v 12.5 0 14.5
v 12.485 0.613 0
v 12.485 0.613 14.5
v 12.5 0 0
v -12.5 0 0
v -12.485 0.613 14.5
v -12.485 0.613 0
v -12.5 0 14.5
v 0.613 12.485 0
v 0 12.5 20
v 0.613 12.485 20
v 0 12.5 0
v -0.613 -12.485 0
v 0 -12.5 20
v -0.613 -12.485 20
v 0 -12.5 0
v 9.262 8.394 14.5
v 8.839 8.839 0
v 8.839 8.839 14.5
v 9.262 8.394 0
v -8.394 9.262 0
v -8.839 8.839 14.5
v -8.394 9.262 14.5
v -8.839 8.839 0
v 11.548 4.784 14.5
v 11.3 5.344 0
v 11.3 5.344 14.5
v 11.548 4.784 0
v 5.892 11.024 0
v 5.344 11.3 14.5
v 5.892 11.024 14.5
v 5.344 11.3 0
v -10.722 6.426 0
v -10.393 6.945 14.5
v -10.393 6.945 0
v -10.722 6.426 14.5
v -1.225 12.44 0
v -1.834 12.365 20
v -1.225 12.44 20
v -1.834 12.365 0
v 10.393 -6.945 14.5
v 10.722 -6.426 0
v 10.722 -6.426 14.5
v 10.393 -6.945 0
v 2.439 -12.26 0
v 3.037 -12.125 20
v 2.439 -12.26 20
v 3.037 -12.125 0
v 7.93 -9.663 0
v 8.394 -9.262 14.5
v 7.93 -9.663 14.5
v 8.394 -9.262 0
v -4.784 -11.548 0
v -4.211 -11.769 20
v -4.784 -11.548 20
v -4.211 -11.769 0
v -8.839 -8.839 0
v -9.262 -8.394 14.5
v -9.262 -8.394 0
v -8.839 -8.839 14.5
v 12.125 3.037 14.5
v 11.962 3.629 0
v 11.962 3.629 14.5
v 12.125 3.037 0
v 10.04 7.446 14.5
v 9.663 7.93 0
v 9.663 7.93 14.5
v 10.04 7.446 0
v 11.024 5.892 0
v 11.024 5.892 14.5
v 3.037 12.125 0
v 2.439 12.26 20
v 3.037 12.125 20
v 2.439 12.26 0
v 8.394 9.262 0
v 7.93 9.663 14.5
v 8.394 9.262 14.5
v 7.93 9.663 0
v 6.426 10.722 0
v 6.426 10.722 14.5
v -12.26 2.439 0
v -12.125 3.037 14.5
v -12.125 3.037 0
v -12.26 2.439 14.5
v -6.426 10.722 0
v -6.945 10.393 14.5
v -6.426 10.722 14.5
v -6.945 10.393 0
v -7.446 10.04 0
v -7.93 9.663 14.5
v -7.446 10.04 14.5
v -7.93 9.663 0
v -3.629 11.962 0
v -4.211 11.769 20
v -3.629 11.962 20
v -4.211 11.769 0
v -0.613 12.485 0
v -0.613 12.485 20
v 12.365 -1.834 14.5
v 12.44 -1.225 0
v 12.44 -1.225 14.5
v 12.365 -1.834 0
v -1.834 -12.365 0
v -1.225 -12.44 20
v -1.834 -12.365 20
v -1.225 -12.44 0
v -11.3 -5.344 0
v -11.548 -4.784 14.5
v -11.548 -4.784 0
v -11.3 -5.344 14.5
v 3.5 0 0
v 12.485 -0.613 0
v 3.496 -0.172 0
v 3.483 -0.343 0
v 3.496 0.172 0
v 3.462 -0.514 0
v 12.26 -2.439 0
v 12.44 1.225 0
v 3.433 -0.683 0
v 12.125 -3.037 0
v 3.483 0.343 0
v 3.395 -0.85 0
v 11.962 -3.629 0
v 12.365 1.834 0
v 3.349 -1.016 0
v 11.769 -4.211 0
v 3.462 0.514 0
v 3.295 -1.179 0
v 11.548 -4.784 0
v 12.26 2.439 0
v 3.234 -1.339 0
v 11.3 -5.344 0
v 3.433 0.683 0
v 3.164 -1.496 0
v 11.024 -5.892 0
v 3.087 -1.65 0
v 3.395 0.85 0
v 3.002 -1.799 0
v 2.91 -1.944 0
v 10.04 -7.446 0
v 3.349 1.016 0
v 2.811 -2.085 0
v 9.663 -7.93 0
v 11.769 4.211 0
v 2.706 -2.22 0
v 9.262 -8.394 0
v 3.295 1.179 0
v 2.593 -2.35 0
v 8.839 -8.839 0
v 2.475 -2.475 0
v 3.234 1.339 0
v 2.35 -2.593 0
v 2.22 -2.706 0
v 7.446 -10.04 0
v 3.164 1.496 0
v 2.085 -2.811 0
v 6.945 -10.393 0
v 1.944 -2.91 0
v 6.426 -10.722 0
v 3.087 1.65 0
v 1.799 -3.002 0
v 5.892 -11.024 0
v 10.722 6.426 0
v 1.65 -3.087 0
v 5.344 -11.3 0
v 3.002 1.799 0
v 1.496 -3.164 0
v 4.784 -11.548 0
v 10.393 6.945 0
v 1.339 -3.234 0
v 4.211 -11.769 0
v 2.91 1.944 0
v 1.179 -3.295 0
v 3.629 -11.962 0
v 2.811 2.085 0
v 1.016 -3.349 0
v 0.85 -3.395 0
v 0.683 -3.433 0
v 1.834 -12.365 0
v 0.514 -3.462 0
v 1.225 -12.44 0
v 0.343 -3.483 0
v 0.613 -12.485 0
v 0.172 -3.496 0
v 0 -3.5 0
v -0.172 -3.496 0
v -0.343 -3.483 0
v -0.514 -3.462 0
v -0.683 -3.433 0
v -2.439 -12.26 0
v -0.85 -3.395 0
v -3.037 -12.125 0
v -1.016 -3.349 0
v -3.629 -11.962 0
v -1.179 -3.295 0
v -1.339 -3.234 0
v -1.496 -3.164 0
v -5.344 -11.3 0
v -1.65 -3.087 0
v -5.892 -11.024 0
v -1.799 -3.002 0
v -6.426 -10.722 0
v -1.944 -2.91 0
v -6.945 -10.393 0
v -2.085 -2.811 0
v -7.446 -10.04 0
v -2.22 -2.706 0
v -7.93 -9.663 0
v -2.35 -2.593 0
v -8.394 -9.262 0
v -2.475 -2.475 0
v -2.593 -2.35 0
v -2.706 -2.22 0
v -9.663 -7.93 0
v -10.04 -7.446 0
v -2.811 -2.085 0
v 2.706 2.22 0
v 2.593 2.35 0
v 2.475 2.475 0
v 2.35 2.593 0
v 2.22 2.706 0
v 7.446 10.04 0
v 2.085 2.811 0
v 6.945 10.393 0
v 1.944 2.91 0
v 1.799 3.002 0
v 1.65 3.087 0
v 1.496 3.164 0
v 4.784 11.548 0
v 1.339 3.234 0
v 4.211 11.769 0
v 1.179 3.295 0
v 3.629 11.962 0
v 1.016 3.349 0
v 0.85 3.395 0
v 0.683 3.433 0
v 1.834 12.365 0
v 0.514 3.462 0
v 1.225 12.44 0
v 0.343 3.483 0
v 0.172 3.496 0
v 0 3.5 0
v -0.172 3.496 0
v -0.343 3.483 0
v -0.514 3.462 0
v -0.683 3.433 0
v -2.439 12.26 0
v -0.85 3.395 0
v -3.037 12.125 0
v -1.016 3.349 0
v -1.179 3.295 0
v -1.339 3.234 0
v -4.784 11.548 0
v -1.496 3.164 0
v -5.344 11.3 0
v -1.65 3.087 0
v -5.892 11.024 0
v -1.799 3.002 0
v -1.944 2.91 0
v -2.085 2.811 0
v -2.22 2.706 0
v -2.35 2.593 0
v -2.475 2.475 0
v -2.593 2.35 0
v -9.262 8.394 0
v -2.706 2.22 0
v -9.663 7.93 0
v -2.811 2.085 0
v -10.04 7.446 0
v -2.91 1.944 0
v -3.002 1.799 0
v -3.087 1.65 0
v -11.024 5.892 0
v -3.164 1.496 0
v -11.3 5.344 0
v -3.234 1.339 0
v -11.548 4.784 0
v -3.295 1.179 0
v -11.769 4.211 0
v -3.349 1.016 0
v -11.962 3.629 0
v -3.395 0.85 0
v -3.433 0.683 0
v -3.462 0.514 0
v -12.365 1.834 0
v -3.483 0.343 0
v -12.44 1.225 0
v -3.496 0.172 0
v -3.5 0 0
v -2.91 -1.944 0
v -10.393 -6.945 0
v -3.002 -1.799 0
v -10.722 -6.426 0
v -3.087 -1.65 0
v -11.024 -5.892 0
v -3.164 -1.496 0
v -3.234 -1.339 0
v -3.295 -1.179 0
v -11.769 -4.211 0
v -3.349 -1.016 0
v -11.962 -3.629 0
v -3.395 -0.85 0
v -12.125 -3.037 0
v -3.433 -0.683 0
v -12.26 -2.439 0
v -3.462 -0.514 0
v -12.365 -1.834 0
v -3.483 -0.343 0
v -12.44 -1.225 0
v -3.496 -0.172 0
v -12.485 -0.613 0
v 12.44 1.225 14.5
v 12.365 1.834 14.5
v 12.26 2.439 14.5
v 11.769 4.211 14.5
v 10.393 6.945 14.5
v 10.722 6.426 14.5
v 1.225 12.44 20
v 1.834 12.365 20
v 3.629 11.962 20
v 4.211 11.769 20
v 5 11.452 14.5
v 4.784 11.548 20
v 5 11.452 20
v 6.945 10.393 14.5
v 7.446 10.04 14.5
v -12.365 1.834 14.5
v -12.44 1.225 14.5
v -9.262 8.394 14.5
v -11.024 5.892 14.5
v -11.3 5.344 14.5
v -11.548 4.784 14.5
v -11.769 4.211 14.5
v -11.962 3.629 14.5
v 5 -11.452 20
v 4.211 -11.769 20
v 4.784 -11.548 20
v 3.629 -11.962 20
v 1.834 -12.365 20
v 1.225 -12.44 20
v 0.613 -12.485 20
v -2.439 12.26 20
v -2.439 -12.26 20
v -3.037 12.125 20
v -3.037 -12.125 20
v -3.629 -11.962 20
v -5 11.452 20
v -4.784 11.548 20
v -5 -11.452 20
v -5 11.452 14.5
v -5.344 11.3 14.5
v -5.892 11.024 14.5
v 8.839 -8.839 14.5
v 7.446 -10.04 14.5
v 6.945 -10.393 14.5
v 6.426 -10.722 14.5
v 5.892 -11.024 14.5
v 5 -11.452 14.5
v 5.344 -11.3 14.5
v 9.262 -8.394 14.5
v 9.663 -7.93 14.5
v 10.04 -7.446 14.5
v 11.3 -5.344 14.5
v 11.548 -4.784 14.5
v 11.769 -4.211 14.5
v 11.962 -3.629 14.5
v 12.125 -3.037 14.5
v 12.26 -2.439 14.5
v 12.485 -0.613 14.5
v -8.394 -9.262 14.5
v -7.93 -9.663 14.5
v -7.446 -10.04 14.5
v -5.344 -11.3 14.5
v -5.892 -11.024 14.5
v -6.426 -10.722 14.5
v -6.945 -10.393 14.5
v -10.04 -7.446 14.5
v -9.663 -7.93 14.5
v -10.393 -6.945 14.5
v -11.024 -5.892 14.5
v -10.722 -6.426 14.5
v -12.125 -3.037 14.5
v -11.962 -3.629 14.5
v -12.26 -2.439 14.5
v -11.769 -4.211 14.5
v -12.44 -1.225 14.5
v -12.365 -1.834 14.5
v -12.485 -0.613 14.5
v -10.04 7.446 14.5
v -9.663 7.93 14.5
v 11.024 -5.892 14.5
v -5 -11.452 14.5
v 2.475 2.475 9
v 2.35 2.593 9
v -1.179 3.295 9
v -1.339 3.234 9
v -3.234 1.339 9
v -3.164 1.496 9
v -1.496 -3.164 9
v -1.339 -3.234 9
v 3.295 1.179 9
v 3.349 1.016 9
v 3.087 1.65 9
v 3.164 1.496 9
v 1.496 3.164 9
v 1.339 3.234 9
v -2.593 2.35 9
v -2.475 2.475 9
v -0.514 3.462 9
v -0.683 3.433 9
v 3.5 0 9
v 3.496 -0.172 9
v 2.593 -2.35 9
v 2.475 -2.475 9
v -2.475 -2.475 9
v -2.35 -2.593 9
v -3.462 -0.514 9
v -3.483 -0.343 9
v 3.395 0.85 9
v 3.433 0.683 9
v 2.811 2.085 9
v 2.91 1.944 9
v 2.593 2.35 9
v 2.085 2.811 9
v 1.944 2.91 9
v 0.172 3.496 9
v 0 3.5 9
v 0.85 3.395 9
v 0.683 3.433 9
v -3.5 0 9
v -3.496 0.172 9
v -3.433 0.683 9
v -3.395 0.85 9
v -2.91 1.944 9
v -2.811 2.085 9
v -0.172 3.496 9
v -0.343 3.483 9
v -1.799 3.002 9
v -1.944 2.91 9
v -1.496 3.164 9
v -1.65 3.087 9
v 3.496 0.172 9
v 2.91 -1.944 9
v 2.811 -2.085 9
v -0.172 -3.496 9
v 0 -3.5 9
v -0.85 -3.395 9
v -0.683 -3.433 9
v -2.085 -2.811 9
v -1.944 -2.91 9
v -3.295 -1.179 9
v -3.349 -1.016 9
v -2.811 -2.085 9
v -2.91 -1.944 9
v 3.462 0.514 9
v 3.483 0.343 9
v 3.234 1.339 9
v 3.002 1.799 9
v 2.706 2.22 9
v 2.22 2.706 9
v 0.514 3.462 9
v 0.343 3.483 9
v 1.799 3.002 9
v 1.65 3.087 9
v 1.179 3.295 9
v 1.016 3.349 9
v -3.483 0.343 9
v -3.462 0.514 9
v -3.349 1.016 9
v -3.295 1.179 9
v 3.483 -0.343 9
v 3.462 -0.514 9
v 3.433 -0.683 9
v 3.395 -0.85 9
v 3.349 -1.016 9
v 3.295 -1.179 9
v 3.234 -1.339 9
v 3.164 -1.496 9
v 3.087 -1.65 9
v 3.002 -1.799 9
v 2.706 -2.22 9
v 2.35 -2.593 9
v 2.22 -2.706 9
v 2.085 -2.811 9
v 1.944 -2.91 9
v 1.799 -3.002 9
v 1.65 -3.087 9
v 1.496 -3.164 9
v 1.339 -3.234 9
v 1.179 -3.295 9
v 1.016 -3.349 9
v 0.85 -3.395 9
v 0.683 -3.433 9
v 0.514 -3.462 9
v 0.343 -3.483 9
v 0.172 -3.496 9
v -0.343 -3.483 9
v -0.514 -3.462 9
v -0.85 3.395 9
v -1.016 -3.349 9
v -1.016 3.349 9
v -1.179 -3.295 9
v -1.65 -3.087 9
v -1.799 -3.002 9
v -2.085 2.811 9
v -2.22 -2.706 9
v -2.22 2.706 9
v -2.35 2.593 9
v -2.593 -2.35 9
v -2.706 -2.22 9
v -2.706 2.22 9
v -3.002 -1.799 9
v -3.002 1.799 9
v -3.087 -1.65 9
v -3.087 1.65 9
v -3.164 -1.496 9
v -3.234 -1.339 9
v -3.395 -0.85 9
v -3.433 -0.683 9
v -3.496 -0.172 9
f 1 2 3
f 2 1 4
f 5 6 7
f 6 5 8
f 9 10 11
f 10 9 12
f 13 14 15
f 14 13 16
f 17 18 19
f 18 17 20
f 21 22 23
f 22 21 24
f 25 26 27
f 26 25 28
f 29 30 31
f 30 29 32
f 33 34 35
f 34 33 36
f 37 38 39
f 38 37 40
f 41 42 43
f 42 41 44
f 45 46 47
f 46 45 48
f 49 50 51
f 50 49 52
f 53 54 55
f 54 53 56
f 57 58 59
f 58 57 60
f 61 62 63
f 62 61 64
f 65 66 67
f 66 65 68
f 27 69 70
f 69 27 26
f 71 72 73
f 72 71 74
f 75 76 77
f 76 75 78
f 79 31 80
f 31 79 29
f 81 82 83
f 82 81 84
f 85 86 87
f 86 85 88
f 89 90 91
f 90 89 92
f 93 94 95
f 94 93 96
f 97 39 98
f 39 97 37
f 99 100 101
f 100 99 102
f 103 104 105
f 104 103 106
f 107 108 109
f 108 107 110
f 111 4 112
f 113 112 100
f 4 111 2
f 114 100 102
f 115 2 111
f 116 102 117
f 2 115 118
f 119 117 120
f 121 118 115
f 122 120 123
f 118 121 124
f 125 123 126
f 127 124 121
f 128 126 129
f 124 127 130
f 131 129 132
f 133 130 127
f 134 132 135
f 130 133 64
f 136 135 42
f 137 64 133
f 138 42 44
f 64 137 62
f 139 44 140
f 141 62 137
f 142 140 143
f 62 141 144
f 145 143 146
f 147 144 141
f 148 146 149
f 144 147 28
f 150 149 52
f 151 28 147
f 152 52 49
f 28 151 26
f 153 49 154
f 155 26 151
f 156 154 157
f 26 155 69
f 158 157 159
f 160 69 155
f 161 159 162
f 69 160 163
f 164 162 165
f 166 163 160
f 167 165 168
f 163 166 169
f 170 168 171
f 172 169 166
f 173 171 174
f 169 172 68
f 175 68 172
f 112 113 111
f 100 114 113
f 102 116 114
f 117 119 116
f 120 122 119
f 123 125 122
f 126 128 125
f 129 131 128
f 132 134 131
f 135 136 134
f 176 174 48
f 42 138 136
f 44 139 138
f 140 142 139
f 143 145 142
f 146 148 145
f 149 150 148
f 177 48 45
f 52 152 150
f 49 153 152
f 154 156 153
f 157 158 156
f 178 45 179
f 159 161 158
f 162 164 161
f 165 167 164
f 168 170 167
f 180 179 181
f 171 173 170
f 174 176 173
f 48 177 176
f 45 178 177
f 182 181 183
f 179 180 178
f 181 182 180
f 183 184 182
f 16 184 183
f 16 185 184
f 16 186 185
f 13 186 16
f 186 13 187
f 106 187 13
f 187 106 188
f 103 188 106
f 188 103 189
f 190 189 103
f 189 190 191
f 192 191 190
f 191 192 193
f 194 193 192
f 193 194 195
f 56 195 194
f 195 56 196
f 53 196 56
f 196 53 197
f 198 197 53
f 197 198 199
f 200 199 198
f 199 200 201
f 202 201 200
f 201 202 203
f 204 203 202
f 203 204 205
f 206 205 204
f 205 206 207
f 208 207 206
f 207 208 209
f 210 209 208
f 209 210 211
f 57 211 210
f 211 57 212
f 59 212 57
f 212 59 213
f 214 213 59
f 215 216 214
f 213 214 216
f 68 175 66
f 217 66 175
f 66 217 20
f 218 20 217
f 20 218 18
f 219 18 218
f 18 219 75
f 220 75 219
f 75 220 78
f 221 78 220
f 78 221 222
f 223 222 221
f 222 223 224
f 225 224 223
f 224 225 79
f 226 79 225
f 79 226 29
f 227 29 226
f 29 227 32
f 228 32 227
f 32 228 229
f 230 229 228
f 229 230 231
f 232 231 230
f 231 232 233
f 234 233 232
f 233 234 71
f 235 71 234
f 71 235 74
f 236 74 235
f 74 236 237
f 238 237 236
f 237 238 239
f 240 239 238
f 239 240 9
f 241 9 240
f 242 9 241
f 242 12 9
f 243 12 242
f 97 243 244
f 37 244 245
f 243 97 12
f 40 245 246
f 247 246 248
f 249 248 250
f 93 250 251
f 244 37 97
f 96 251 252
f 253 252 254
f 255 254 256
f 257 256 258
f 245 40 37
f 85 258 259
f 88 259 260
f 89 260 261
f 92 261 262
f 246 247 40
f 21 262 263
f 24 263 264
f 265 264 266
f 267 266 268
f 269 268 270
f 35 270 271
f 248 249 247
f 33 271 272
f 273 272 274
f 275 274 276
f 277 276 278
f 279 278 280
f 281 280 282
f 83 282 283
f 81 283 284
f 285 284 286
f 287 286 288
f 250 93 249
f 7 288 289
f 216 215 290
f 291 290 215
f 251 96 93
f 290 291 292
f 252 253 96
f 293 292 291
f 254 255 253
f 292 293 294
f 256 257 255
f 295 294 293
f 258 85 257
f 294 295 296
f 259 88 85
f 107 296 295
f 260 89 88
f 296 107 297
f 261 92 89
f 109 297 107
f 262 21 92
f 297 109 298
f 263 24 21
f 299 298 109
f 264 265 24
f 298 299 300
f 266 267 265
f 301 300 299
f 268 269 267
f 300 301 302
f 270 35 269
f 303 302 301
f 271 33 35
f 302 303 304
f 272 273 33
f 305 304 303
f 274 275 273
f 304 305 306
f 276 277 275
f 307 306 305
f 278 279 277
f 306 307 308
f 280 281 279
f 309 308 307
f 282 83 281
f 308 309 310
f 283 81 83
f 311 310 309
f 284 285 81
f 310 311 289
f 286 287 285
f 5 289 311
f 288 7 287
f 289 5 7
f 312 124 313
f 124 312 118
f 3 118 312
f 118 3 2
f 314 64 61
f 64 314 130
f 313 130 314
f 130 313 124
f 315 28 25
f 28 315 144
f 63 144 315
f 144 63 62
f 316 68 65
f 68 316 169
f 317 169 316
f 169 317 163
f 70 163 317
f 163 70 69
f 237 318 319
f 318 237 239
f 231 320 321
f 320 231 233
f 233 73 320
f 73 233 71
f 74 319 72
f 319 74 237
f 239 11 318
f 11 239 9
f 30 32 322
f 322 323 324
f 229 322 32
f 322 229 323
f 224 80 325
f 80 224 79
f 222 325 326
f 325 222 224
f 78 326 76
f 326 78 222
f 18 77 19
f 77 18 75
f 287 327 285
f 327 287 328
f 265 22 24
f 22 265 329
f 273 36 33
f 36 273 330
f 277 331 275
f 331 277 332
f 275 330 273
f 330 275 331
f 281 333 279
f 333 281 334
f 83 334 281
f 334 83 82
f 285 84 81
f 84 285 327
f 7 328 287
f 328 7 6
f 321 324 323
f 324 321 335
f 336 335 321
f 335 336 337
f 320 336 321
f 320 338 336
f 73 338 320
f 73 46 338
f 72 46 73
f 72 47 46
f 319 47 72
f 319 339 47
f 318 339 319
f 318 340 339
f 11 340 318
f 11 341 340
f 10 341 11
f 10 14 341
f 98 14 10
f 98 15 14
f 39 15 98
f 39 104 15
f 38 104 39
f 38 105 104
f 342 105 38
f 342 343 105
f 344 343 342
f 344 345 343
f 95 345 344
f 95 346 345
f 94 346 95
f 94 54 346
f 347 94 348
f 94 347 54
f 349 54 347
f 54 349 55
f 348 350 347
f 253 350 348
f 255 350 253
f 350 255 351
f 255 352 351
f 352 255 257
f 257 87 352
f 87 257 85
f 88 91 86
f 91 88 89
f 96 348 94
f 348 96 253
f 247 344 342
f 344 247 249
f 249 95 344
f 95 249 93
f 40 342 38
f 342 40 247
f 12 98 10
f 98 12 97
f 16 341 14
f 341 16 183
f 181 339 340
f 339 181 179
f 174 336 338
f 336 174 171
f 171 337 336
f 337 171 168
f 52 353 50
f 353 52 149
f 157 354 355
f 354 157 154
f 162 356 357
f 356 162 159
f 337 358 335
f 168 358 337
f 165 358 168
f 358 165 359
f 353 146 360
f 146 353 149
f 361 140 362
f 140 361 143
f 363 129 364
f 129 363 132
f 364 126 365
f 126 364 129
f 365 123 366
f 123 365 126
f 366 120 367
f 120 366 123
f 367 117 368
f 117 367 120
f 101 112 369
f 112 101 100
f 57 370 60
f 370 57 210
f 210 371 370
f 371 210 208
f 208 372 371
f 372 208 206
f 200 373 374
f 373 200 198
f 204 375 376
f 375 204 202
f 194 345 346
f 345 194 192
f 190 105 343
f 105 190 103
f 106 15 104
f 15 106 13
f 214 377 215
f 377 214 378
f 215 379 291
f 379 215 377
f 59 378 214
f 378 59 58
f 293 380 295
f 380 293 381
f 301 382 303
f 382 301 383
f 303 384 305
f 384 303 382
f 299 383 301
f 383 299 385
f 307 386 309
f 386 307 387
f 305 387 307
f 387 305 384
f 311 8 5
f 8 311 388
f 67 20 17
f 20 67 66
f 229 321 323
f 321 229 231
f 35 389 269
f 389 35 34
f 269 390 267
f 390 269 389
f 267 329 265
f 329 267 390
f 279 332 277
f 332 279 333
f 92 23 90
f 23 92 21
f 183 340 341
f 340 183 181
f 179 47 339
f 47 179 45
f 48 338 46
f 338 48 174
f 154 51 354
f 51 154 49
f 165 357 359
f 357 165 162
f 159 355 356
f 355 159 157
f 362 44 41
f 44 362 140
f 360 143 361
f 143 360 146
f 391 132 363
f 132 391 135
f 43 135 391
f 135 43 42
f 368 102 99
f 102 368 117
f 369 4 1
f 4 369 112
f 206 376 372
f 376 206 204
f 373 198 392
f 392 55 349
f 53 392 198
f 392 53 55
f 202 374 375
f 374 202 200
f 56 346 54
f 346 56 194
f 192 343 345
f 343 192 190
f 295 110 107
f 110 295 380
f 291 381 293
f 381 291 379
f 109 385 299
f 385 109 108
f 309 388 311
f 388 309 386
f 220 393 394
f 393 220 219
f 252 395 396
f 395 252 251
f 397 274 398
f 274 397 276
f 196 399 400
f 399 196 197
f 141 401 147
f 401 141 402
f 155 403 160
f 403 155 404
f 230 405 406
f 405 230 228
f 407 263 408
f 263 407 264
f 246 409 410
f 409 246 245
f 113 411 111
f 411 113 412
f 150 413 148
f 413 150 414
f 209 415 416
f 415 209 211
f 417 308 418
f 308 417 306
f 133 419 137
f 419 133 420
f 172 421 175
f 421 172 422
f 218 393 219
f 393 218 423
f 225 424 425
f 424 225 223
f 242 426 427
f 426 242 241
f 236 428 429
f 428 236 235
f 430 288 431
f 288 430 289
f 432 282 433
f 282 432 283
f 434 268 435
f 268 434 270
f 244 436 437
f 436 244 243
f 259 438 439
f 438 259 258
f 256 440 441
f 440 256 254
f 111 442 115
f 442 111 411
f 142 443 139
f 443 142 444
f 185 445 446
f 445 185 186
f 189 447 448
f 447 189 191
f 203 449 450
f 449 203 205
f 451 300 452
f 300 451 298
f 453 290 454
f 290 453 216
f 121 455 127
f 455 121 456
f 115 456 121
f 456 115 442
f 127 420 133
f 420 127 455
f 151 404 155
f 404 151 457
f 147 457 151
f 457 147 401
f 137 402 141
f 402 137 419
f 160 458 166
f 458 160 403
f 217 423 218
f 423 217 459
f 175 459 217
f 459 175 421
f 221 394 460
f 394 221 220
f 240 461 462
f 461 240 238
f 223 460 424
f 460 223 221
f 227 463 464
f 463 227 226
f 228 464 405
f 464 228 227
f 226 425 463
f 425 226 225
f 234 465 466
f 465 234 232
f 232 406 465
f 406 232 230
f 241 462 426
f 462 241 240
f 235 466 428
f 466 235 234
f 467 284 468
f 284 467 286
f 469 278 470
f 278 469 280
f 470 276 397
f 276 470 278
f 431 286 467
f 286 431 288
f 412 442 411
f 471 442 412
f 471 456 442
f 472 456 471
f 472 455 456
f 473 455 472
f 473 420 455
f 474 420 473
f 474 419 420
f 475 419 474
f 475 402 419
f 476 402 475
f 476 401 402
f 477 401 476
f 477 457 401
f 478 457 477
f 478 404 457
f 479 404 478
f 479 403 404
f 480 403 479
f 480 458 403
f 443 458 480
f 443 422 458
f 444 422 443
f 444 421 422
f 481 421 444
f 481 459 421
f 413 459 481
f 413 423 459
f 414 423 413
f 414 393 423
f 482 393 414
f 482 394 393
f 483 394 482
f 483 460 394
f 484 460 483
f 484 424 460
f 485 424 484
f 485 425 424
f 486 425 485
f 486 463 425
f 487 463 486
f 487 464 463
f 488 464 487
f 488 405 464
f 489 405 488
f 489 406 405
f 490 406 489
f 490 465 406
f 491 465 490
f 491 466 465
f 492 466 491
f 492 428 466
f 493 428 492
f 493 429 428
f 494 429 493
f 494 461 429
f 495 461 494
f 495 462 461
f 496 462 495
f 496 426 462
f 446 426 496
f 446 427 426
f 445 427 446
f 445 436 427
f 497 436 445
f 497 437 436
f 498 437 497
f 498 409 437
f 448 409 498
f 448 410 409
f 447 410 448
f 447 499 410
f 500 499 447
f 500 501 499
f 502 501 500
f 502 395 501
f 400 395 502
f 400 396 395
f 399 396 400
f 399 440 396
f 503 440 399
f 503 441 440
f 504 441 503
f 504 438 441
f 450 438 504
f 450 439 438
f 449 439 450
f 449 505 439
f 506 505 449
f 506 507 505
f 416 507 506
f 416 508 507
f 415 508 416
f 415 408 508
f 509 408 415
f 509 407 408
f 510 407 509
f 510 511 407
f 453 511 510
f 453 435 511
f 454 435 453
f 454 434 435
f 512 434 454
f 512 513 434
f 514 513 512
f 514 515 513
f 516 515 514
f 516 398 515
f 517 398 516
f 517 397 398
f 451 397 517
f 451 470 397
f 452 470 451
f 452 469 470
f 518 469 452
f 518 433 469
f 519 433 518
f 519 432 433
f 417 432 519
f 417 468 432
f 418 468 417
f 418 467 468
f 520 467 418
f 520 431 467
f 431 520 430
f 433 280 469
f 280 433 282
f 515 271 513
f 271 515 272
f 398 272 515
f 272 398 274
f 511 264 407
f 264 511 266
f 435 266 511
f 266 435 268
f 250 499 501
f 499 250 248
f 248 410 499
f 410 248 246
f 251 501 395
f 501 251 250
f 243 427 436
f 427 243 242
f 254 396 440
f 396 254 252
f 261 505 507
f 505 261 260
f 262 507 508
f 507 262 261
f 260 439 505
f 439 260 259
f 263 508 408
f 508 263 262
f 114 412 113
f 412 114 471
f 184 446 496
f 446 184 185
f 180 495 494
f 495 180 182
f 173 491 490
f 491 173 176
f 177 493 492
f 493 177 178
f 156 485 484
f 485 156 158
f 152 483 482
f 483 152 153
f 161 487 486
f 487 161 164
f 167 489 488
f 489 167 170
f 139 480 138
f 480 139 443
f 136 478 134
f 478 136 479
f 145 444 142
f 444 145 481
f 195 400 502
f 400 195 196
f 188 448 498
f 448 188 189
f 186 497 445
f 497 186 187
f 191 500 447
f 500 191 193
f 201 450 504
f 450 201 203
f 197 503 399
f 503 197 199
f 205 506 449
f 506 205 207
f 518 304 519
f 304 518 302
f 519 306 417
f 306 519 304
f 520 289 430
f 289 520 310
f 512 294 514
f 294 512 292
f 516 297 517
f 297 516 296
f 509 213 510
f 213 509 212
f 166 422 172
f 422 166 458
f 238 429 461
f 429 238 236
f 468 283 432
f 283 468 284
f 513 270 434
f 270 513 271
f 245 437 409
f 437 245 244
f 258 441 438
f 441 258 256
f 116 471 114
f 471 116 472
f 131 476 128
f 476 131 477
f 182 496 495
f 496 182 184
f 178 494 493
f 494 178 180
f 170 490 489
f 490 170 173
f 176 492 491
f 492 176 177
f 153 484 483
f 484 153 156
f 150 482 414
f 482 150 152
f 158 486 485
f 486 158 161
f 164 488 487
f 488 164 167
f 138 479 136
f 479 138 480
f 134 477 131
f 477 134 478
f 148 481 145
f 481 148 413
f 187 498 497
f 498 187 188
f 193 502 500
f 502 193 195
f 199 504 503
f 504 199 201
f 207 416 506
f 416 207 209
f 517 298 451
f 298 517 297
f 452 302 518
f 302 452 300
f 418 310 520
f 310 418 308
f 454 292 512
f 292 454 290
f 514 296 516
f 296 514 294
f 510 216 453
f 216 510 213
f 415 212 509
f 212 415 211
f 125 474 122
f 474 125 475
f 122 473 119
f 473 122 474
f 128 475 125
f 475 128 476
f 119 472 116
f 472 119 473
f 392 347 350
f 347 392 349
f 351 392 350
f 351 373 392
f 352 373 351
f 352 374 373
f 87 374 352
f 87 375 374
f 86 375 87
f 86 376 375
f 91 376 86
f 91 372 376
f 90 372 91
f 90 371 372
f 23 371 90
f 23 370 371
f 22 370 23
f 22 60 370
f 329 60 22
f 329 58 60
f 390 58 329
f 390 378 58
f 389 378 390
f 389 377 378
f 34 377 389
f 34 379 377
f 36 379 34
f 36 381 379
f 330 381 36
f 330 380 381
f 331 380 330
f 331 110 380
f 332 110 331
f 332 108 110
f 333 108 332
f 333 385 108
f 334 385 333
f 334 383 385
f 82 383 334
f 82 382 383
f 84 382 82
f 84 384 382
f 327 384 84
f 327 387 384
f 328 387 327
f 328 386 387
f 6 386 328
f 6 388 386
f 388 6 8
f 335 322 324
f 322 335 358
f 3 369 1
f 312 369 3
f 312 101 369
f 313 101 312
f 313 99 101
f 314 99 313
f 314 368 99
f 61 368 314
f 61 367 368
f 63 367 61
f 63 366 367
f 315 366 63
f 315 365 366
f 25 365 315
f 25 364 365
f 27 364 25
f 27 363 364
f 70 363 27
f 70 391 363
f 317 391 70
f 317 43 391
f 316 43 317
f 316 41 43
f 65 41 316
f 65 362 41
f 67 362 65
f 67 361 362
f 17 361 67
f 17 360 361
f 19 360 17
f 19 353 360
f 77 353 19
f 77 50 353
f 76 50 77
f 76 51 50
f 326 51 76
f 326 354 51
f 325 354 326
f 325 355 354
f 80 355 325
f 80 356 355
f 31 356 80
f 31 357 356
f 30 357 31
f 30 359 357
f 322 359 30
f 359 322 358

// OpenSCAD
$fn = 128;

peg = [6.8, 4.2, 10];

difference() {
    cylinder(d=25, h = 20);
    translate([0,0,-1]) cylinder(d=7, h=10);
    translate([-10,0,20]) cube([10,23,11],center=true);
    translate([10,0,20]) cube([10,23,11],center=true);
}
